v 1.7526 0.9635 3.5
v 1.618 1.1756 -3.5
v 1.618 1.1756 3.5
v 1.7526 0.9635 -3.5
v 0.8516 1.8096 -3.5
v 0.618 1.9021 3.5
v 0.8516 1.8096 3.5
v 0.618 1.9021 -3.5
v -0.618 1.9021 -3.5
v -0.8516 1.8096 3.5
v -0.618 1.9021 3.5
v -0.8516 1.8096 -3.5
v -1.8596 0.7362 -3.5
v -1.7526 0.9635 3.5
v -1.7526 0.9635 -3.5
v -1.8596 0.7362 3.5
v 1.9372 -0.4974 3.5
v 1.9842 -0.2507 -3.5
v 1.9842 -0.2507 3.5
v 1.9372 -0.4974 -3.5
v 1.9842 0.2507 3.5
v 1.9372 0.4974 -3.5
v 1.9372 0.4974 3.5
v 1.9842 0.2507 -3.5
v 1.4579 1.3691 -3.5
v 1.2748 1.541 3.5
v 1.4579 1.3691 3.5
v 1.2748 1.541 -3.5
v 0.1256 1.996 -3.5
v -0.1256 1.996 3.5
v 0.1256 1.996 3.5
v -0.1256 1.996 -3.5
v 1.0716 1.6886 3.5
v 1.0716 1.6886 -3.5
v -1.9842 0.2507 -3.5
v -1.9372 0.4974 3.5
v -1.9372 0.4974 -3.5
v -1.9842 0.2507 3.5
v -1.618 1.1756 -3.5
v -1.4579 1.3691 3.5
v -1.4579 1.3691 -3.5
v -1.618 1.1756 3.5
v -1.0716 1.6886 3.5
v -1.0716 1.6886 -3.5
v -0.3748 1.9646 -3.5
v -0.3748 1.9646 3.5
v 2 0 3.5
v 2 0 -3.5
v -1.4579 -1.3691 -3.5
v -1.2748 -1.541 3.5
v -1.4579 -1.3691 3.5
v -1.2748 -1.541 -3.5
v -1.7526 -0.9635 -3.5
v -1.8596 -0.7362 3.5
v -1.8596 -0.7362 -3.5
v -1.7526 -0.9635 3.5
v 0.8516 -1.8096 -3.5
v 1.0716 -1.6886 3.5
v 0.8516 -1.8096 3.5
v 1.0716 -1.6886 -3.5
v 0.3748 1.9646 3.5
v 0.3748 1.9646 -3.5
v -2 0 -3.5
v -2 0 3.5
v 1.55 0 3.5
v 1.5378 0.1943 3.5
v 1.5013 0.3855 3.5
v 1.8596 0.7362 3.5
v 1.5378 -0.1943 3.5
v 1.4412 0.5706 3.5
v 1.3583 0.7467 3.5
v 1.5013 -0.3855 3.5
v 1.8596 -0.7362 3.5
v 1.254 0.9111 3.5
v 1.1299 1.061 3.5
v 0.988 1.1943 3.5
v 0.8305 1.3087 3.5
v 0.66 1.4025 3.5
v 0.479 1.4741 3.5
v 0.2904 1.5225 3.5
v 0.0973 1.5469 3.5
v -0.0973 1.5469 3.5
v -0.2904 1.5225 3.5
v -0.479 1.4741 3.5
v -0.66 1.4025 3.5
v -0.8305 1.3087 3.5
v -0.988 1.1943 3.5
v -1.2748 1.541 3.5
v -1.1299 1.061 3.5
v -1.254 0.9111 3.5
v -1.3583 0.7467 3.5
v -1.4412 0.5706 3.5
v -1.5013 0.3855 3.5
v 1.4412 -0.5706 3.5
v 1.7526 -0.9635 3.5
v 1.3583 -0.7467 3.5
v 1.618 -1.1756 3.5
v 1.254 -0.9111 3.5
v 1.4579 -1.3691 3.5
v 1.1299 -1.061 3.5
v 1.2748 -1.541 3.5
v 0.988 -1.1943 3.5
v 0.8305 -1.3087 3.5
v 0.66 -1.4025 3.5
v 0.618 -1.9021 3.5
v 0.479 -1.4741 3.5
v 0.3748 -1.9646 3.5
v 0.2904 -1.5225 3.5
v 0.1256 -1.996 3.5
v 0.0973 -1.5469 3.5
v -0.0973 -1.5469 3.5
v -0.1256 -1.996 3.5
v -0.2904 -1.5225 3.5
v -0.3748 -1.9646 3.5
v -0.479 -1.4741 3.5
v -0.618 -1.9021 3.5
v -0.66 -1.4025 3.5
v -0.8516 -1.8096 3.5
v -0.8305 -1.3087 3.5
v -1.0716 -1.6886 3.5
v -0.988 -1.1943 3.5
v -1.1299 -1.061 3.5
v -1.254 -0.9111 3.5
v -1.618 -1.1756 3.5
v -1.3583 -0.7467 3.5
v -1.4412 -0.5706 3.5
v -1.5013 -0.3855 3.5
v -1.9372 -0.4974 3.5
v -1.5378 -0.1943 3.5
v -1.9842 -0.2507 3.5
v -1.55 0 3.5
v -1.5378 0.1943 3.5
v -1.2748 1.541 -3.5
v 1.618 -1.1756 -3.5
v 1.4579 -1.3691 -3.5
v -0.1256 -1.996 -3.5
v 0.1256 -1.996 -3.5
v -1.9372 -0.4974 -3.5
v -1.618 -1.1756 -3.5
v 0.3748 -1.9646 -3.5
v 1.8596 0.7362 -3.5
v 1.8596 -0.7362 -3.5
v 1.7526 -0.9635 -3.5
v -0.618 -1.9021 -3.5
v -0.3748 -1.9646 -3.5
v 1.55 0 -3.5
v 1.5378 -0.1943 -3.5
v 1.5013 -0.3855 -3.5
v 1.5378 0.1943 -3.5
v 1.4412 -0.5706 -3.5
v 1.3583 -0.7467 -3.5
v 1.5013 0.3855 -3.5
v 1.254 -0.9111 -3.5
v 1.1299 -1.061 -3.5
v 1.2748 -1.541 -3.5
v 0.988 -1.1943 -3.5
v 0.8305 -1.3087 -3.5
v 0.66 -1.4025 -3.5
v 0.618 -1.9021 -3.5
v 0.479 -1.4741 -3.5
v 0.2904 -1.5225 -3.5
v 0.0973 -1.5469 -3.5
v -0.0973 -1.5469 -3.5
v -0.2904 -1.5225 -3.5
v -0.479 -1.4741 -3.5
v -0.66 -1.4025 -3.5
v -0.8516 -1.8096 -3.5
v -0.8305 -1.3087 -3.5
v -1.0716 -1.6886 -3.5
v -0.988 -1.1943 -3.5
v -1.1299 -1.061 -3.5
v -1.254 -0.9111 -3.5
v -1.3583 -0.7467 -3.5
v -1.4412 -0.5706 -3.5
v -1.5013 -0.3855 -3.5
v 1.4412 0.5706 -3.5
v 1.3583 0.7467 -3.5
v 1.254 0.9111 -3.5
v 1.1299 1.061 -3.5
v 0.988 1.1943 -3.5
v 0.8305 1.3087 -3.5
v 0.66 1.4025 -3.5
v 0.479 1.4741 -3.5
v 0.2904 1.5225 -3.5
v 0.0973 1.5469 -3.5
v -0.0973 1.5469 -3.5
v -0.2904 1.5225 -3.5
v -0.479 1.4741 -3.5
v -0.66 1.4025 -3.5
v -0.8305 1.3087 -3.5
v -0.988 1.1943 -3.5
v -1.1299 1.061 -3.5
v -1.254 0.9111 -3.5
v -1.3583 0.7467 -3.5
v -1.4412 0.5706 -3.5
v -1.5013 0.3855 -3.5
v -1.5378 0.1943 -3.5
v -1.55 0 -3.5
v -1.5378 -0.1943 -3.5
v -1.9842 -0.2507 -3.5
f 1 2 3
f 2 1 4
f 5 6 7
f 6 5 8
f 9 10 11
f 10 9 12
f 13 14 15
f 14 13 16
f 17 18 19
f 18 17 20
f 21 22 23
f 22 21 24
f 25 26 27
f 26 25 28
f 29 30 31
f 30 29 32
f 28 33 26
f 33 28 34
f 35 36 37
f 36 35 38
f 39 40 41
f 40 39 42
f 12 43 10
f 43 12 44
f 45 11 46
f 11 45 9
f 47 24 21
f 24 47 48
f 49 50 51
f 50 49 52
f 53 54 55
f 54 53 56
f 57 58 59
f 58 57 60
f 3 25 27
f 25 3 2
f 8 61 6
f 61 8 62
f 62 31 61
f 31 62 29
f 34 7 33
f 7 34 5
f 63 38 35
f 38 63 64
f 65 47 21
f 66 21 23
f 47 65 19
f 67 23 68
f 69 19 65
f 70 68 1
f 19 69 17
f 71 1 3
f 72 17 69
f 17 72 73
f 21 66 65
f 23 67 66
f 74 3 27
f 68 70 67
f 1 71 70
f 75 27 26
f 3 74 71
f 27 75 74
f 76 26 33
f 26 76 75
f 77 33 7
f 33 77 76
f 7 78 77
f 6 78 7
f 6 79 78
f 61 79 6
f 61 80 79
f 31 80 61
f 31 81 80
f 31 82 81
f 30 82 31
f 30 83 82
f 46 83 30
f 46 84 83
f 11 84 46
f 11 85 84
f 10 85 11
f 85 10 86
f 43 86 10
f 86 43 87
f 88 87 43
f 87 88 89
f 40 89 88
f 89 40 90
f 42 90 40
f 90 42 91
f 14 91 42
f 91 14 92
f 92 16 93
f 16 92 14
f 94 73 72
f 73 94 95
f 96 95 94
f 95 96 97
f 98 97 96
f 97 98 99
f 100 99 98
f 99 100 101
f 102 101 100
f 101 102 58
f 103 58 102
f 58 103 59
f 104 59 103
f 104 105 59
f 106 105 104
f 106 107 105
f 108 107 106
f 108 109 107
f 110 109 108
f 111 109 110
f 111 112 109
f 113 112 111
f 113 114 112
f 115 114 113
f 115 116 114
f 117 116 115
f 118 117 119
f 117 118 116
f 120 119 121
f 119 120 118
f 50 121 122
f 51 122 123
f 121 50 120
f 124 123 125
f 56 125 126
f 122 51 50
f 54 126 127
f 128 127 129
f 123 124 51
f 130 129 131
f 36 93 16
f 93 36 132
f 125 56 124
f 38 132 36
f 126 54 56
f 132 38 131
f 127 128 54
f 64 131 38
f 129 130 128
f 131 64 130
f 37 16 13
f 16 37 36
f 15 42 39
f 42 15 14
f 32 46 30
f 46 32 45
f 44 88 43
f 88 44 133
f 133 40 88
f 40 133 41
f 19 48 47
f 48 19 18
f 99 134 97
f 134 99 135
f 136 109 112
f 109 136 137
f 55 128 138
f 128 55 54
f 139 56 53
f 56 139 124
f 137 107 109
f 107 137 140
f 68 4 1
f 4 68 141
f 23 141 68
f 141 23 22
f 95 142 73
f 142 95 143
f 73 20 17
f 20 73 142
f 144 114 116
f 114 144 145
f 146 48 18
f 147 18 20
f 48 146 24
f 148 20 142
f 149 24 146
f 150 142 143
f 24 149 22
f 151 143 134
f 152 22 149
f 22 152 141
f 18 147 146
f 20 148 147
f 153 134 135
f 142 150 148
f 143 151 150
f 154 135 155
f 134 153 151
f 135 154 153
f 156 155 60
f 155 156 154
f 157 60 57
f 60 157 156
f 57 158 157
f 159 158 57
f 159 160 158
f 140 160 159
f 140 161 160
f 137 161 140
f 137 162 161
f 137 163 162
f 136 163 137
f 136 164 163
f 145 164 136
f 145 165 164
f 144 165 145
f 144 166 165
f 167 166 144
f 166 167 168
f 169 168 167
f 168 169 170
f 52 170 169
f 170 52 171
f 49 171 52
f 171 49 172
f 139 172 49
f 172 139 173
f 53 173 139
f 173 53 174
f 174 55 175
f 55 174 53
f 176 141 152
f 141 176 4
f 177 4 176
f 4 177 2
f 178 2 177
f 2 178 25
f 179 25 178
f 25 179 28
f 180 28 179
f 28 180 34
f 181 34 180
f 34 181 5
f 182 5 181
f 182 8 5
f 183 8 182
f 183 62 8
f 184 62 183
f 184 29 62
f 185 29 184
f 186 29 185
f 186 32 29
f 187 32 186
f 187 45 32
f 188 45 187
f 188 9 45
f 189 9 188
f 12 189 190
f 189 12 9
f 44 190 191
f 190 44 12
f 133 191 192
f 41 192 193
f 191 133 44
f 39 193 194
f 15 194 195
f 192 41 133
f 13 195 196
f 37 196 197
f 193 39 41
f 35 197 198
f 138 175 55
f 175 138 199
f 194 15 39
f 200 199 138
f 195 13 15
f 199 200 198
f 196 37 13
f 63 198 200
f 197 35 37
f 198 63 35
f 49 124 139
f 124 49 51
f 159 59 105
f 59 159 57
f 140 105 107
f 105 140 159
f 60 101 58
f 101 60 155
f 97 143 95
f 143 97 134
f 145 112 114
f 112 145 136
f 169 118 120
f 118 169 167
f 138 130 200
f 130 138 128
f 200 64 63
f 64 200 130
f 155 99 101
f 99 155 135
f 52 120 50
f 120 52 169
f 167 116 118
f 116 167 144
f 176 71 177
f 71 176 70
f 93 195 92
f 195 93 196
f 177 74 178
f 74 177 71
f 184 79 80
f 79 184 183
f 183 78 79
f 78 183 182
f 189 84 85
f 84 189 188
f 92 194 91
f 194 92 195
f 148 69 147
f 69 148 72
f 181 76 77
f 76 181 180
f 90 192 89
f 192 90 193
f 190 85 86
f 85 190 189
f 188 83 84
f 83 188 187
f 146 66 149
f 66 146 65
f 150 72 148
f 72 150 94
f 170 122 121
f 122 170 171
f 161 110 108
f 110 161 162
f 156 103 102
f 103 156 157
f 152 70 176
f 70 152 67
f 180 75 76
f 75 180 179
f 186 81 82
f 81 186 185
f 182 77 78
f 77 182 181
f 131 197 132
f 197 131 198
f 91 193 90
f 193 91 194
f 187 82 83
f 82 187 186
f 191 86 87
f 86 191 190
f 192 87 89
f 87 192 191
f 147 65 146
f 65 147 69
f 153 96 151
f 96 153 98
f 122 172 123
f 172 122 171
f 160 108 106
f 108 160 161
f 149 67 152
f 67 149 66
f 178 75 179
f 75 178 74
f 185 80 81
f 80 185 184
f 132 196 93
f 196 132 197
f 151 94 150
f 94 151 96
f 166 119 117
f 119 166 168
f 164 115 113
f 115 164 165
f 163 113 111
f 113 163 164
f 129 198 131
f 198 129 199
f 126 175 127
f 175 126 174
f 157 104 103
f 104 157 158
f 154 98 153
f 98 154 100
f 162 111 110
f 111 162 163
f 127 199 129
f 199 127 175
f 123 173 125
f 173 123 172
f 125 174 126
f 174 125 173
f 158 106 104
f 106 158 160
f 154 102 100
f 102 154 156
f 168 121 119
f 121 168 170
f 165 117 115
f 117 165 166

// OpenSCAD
$fn = 50;


difference() {
	union() {
		translate(v = [0, 0, -3.5000000000]) {
			cylinder(h = 7, r = 2.0000000000);
		}
	}
	union() {
		translate(v = [0, 0, -100.0000000000]) {
			cylinder(h = 200, r = 1.5500000000);
		}
	}
}
